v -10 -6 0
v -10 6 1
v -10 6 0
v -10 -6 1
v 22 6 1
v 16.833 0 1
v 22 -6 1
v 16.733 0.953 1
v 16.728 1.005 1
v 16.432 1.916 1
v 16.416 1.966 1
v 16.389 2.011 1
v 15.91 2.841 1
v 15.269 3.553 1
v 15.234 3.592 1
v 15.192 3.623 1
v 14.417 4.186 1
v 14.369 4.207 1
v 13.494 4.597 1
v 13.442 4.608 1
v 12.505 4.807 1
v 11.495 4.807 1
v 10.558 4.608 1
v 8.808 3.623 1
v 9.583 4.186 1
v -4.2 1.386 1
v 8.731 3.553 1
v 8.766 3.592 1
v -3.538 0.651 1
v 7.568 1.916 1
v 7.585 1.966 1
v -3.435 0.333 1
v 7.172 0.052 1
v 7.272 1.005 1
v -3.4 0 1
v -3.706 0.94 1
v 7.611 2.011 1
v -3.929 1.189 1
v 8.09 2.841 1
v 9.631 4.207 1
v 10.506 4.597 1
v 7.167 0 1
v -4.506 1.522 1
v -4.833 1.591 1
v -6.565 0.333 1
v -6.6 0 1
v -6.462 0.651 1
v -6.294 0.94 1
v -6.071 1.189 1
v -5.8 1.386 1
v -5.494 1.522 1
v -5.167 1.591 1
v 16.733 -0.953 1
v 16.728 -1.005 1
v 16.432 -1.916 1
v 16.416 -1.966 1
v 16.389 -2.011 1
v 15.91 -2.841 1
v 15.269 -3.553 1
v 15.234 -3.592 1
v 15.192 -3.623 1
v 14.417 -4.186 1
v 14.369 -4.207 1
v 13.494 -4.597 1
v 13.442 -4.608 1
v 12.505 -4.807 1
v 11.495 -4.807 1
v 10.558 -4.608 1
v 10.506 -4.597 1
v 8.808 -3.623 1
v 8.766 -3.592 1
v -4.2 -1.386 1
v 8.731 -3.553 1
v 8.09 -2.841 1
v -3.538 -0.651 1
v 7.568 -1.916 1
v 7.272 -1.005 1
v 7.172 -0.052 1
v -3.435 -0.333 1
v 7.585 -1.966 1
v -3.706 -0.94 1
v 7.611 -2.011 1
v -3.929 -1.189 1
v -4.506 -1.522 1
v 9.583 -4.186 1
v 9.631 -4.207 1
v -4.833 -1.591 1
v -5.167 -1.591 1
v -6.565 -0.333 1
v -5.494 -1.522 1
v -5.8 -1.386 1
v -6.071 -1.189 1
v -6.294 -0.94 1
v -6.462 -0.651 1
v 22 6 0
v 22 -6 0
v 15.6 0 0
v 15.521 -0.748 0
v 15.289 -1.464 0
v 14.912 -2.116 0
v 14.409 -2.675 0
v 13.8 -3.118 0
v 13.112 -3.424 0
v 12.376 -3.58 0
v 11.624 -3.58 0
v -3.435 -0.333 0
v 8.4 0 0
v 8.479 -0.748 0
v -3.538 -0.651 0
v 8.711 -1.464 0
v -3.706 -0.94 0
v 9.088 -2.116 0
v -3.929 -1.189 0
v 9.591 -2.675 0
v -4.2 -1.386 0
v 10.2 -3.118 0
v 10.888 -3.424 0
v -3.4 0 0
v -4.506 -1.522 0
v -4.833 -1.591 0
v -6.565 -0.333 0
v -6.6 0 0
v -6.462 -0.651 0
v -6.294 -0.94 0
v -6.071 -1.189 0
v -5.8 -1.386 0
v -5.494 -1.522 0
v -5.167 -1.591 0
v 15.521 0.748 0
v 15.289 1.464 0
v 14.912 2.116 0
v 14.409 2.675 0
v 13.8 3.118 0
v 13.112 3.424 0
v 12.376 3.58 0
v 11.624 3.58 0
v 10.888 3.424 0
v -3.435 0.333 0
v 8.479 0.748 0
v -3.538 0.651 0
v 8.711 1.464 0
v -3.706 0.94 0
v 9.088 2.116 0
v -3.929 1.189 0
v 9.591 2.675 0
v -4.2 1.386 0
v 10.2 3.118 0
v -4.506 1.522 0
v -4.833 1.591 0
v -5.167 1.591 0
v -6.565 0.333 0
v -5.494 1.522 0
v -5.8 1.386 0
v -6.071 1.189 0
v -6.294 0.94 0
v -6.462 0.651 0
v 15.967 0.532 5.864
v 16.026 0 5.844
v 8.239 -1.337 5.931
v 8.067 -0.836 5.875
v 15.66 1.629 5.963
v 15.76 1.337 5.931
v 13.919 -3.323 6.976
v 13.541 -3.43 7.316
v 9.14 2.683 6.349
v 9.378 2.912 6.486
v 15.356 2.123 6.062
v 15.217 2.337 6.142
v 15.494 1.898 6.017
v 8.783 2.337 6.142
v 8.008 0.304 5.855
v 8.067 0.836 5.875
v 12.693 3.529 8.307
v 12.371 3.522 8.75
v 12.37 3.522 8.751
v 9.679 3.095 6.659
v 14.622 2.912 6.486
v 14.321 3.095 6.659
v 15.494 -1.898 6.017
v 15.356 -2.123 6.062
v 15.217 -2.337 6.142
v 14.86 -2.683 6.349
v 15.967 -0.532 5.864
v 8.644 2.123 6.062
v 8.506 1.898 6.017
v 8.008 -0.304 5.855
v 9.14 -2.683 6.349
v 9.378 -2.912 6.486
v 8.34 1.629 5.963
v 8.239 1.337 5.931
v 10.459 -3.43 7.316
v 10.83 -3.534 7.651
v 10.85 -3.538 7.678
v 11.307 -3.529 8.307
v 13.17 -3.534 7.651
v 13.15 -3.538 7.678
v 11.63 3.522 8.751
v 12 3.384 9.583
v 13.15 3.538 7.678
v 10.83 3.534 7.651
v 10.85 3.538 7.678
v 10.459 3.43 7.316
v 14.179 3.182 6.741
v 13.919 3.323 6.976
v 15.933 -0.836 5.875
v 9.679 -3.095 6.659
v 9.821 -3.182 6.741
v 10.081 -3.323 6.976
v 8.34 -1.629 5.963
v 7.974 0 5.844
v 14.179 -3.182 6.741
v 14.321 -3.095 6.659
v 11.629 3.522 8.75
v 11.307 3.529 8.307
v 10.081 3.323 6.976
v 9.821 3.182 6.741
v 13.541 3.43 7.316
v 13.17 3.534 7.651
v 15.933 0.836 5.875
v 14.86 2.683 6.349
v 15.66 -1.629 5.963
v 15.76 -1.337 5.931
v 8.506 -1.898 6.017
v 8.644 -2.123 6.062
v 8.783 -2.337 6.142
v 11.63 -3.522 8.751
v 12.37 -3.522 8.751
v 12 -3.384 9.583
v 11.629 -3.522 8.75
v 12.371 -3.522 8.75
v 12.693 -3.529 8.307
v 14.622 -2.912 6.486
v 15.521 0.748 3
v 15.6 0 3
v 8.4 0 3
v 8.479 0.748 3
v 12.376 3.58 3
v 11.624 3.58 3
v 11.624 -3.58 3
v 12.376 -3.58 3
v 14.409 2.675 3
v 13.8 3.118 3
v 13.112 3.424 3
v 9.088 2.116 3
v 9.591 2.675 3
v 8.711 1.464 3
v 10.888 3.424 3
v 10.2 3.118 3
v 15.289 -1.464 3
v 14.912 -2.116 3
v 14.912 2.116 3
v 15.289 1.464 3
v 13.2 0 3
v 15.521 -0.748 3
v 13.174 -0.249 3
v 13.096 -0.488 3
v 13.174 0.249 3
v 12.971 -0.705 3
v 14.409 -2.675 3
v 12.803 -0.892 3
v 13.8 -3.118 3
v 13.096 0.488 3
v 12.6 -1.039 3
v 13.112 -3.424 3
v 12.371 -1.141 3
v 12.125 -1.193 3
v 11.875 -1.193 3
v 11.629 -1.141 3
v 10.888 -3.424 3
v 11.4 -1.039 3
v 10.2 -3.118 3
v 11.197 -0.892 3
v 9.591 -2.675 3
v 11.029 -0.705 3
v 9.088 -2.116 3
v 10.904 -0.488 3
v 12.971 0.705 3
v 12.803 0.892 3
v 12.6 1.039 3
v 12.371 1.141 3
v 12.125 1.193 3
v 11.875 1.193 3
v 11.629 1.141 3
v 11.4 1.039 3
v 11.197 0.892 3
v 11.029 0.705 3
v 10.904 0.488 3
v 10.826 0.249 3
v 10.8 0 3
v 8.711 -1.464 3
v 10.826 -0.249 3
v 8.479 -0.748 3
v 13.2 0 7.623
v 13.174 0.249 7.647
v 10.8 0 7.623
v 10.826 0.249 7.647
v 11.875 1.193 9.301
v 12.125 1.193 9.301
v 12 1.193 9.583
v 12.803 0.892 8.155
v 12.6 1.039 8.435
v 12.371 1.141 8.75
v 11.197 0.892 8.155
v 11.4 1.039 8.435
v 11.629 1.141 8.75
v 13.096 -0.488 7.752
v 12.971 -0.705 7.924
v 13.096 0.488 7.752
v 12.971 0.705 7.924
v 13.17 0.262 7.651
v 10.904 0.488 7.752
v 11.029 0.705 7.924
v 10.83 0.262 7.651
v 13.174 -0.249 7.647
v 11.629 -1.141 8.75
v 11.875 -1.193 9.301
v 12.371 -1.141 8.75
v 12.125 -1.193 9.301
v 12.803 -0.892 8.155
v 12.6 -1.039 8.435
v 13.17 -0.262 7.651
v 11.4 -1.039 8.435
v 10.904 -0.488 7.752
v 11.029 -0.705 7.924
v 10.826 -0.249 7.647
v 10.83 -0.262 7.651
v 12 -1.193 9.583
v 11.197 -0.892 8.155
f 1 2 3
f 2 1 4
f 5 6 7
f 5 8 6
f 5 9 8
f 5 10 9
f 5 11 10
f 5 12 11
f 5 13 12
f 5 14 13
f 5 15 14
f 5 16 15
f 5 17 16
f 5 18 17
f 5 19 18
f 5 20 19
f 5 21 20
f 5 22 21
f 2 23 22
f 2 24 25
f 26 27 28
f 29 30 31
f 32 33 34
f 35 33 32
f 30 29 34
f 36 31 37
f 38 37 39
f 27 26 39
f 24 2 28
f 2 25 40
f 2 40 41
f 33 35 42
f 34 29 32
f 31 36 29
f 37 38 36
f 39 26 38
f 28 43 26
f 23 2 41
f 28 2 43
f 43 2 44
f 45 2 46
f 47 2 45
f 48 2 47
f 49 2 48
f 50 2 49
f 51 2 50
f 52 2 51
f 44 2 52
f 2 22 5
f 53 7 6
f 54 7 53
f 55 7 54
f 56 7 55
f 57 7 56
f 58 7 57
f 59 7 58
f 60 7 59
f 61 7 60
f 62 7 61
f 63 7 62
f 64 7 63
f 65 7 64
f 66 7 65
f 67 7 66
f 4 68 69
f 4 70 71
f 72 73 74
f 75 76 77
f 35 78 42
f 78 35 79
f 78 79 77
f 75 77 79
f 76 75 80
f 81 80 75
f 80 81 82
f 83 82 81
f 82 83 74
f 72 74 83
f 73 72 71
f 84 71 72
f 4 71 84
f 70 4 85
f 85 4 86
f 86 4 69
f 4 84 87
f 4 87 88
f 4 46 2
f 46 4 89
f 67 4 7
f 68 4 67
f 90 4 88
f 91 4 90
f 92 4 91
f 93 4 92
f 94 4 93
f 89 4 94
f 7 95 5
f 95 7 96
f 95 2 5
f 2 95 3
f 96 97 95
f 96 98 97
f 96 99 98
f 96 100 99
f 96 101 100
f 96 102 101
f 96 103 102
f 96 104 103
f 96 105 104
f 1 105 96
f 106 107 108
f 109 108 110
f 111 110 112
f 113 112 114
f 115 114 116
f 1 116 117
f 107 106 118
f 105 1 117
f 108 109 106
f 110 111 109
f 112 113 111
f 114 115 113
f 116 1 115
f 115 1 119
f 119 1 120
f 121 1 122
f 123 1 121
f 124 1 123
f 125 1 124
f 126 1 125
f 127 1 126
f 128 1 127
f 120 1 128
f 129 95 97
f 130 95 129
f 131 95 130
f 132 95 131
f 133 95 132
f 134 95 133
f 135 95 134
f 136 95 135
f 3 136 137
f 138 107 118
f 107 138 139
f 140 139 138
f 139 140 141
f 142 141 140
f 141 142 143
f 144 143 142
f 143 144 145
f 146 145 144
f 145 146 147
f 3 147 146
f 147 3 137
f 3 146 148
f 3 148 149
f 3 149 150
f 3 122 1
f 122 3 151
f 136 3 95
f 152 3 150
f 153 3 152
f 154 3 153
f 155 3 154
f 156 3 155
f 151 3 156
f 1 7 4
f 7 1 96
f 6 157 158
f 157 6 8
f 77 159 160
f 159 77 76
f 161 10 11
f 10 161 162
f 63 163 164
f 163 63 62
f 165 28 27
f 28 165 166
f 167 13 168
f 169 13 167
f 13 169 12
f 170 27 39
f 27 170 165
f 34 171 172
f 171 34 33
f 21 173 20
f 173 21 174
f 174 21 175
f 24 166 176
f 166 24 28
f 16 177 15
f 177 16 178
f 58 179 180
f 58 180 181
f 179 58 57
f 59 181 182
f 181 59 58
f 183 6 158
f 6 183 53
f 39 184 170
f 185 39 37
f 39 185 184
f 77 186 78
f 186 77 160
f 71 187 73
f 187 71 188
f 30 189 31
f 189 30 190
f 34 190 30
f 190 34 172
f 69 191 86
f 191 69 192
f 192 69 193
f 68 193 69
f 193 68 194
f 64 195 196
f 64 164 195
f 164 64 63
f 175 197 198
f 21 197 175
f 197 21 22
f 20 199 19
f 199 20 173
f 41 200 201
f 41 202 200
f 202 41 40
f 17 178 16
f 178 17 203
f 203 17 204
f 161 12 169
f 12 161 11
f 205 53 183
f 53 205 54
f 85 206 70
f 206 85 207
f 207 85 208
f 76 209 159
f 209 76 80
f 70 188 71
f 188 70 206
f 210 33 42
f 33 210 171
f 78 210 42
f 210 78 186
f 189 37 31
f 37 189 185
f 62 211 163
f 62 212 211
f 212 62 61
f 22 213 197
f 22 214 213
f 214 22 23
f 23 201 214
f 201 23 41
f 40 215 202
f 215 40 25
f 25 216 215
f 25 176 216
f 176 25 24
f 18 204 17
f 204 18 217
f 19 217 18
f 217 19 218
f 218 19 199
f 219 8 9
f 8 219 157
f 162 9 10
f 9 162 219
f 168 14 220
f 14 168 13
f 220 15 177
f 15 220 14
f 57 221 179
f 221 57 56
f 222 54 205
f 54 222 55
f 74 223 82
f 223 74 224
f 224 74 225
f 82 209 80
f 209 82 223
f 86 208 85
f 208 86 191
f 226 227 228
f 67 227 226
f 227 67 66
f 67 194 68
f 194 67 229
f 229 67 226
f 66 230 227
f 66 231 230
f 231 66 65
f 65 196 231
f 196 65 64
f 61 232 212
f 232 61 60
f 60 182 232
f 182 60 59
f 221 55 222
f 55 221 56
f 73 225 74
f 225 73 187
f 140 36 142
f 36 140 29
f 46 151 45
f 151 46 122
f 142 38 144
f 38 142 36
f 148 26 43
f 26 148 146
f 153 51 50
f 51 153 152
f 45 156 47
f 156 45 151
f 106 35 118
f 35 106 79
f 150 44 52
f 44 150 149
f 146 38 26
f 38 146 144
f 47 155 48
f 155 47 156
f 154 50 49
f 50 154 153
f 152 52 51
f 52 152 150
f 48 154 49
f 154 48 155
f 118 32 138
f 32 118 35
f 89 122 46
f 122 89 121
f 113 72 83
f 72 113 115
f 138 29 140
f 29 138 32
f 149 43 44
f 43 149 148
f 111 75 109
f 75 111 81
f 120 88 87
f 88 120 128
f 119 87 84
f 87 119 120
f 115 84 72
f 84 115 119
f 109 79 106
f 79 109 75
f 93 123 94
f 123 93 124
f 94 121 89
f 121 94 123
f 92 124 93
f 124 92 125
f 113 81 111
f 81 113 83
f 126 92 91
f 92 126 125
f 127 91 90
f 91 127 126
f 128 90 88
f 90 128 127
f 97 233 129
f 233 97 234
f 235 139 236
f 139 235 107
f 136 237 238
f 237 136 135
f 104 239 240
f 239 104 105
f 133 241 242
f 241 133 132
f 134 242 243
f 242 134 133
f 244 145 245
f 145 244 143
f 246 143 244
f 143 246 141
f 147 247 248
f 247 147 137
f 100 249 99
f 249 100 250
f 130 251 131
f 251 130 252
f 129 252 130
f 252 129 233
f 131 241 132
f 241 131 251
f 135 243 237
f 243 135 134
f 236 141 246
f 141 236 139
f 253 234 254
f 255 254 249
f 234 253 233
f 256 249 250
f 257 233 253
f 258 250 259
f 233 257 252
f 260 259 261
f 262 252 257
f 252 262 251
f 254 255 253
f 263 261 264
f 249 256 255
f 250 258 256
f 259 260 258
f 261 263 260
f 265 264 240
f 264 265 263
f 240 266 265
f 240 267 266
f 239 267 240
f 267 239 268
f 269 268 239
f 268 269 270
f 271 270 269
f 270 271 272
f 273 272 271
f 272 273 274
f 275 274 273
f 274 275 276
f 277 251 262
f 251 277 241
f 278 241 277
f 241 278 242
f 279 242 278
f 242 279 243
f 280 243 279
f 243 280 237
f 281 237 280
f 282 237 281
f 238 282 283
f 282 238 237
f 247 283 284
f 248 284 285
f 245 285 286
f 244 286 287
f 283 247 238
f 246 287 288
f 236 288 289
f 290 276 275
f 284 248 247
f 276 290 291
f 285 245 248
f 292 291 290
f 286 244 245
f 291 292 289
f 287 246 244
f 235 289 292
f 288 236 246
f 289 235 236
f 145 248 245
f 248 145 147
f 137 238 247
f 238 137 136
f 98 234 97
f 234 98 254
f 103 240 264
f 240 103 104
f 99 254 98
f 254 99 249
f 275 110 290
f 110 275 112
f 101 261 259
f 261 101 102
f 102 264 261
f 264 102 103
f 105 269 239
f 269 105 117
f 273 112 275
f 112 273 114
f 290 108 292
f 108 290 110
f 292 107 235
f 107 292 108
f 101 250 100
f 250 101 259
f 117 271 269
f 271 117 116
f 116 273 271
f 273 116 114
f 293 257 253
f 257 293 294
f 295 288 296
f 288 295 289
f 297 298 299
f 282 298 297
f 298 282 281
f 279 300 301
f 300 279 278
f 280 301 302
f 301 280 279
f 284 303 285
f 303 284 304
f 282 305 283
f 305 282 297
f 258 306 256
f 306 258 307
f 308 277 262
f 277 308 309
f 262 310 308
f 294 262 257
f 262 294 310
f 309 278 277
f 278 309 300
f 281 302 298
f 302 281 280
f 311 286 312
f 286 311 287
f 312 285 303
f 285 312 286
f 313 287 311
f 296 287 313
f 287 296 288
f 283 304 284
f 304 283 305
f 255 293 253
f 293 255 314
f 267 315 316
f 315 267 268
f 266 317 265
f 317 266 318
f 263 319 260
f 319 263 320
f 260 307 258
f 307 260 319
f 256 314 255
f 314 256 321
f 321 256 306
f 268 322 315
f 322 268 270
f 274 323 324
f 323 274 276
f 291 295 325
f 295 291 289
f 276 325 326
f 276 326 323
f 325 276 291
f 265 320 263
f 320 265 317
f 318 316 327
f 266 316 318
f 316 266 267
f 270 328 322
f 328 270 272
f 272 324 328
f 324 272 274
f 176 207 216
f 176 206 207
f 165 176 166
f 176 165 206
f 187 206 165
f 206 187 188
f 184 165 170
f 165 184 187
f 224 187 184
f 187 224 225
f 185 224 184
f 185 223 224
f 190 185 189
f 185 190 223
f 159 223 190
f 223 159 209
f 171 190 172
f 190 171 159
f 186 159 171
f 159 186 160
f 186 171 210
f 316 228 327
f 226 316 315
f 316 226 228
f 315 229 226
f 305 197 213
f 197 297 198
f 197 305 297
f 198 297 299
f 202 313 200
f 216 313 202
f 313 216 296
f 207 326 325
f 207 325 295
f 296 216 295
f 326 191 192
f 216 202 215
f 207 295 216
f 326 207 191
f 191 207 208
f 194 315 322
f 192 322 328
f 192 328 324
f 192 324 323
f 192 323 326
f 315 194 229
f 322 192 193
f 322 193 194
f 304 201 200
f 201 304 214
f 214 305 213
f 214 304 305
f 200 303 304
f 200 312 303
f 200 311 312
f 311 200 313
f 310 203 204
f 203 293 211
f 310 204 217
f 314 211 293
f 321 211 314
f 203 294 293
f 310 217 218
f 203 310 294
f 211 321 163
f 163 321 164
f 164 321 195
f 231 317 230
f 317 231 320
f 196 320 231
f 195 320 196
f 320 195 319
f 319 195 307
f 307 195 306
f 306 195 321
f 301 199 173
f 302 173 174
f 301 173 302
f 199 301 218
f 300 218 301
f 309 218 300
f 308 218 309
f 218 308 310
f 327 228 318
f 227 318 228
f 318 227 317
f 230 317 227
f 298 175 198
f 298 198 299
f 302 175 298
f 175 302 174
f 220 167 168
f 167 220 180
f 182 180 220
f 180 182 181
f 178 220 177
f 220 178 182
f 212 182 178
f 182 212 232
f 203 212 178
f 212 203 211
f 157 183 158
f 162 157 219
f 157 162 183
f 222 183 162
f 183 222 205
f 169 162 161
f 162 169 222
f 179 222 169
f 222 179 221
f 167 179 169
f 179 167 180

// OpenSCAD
$fn=30;
difference() {
    union() {
        translate([-10,-6,0]) cube([32,12,1]);

        translate([12,0,0]) cylinder(r1=5,r2=3,h=12);

    }

translate([-5,0,-1]) cylinder(r=1.6,h=12);
translate([12,0,-1]) cylinder(r=3.6,h=4);
    translate([12,0,-1]) cylinder(r=1.2,h=20);
    translate([6,-6,12]) rotate([0,90,90]) cylinder(r=6.5,h=12);
translate([18,-6,12]) rotate([0,90,90]) cylinder(r=6.5,h=12);

}
